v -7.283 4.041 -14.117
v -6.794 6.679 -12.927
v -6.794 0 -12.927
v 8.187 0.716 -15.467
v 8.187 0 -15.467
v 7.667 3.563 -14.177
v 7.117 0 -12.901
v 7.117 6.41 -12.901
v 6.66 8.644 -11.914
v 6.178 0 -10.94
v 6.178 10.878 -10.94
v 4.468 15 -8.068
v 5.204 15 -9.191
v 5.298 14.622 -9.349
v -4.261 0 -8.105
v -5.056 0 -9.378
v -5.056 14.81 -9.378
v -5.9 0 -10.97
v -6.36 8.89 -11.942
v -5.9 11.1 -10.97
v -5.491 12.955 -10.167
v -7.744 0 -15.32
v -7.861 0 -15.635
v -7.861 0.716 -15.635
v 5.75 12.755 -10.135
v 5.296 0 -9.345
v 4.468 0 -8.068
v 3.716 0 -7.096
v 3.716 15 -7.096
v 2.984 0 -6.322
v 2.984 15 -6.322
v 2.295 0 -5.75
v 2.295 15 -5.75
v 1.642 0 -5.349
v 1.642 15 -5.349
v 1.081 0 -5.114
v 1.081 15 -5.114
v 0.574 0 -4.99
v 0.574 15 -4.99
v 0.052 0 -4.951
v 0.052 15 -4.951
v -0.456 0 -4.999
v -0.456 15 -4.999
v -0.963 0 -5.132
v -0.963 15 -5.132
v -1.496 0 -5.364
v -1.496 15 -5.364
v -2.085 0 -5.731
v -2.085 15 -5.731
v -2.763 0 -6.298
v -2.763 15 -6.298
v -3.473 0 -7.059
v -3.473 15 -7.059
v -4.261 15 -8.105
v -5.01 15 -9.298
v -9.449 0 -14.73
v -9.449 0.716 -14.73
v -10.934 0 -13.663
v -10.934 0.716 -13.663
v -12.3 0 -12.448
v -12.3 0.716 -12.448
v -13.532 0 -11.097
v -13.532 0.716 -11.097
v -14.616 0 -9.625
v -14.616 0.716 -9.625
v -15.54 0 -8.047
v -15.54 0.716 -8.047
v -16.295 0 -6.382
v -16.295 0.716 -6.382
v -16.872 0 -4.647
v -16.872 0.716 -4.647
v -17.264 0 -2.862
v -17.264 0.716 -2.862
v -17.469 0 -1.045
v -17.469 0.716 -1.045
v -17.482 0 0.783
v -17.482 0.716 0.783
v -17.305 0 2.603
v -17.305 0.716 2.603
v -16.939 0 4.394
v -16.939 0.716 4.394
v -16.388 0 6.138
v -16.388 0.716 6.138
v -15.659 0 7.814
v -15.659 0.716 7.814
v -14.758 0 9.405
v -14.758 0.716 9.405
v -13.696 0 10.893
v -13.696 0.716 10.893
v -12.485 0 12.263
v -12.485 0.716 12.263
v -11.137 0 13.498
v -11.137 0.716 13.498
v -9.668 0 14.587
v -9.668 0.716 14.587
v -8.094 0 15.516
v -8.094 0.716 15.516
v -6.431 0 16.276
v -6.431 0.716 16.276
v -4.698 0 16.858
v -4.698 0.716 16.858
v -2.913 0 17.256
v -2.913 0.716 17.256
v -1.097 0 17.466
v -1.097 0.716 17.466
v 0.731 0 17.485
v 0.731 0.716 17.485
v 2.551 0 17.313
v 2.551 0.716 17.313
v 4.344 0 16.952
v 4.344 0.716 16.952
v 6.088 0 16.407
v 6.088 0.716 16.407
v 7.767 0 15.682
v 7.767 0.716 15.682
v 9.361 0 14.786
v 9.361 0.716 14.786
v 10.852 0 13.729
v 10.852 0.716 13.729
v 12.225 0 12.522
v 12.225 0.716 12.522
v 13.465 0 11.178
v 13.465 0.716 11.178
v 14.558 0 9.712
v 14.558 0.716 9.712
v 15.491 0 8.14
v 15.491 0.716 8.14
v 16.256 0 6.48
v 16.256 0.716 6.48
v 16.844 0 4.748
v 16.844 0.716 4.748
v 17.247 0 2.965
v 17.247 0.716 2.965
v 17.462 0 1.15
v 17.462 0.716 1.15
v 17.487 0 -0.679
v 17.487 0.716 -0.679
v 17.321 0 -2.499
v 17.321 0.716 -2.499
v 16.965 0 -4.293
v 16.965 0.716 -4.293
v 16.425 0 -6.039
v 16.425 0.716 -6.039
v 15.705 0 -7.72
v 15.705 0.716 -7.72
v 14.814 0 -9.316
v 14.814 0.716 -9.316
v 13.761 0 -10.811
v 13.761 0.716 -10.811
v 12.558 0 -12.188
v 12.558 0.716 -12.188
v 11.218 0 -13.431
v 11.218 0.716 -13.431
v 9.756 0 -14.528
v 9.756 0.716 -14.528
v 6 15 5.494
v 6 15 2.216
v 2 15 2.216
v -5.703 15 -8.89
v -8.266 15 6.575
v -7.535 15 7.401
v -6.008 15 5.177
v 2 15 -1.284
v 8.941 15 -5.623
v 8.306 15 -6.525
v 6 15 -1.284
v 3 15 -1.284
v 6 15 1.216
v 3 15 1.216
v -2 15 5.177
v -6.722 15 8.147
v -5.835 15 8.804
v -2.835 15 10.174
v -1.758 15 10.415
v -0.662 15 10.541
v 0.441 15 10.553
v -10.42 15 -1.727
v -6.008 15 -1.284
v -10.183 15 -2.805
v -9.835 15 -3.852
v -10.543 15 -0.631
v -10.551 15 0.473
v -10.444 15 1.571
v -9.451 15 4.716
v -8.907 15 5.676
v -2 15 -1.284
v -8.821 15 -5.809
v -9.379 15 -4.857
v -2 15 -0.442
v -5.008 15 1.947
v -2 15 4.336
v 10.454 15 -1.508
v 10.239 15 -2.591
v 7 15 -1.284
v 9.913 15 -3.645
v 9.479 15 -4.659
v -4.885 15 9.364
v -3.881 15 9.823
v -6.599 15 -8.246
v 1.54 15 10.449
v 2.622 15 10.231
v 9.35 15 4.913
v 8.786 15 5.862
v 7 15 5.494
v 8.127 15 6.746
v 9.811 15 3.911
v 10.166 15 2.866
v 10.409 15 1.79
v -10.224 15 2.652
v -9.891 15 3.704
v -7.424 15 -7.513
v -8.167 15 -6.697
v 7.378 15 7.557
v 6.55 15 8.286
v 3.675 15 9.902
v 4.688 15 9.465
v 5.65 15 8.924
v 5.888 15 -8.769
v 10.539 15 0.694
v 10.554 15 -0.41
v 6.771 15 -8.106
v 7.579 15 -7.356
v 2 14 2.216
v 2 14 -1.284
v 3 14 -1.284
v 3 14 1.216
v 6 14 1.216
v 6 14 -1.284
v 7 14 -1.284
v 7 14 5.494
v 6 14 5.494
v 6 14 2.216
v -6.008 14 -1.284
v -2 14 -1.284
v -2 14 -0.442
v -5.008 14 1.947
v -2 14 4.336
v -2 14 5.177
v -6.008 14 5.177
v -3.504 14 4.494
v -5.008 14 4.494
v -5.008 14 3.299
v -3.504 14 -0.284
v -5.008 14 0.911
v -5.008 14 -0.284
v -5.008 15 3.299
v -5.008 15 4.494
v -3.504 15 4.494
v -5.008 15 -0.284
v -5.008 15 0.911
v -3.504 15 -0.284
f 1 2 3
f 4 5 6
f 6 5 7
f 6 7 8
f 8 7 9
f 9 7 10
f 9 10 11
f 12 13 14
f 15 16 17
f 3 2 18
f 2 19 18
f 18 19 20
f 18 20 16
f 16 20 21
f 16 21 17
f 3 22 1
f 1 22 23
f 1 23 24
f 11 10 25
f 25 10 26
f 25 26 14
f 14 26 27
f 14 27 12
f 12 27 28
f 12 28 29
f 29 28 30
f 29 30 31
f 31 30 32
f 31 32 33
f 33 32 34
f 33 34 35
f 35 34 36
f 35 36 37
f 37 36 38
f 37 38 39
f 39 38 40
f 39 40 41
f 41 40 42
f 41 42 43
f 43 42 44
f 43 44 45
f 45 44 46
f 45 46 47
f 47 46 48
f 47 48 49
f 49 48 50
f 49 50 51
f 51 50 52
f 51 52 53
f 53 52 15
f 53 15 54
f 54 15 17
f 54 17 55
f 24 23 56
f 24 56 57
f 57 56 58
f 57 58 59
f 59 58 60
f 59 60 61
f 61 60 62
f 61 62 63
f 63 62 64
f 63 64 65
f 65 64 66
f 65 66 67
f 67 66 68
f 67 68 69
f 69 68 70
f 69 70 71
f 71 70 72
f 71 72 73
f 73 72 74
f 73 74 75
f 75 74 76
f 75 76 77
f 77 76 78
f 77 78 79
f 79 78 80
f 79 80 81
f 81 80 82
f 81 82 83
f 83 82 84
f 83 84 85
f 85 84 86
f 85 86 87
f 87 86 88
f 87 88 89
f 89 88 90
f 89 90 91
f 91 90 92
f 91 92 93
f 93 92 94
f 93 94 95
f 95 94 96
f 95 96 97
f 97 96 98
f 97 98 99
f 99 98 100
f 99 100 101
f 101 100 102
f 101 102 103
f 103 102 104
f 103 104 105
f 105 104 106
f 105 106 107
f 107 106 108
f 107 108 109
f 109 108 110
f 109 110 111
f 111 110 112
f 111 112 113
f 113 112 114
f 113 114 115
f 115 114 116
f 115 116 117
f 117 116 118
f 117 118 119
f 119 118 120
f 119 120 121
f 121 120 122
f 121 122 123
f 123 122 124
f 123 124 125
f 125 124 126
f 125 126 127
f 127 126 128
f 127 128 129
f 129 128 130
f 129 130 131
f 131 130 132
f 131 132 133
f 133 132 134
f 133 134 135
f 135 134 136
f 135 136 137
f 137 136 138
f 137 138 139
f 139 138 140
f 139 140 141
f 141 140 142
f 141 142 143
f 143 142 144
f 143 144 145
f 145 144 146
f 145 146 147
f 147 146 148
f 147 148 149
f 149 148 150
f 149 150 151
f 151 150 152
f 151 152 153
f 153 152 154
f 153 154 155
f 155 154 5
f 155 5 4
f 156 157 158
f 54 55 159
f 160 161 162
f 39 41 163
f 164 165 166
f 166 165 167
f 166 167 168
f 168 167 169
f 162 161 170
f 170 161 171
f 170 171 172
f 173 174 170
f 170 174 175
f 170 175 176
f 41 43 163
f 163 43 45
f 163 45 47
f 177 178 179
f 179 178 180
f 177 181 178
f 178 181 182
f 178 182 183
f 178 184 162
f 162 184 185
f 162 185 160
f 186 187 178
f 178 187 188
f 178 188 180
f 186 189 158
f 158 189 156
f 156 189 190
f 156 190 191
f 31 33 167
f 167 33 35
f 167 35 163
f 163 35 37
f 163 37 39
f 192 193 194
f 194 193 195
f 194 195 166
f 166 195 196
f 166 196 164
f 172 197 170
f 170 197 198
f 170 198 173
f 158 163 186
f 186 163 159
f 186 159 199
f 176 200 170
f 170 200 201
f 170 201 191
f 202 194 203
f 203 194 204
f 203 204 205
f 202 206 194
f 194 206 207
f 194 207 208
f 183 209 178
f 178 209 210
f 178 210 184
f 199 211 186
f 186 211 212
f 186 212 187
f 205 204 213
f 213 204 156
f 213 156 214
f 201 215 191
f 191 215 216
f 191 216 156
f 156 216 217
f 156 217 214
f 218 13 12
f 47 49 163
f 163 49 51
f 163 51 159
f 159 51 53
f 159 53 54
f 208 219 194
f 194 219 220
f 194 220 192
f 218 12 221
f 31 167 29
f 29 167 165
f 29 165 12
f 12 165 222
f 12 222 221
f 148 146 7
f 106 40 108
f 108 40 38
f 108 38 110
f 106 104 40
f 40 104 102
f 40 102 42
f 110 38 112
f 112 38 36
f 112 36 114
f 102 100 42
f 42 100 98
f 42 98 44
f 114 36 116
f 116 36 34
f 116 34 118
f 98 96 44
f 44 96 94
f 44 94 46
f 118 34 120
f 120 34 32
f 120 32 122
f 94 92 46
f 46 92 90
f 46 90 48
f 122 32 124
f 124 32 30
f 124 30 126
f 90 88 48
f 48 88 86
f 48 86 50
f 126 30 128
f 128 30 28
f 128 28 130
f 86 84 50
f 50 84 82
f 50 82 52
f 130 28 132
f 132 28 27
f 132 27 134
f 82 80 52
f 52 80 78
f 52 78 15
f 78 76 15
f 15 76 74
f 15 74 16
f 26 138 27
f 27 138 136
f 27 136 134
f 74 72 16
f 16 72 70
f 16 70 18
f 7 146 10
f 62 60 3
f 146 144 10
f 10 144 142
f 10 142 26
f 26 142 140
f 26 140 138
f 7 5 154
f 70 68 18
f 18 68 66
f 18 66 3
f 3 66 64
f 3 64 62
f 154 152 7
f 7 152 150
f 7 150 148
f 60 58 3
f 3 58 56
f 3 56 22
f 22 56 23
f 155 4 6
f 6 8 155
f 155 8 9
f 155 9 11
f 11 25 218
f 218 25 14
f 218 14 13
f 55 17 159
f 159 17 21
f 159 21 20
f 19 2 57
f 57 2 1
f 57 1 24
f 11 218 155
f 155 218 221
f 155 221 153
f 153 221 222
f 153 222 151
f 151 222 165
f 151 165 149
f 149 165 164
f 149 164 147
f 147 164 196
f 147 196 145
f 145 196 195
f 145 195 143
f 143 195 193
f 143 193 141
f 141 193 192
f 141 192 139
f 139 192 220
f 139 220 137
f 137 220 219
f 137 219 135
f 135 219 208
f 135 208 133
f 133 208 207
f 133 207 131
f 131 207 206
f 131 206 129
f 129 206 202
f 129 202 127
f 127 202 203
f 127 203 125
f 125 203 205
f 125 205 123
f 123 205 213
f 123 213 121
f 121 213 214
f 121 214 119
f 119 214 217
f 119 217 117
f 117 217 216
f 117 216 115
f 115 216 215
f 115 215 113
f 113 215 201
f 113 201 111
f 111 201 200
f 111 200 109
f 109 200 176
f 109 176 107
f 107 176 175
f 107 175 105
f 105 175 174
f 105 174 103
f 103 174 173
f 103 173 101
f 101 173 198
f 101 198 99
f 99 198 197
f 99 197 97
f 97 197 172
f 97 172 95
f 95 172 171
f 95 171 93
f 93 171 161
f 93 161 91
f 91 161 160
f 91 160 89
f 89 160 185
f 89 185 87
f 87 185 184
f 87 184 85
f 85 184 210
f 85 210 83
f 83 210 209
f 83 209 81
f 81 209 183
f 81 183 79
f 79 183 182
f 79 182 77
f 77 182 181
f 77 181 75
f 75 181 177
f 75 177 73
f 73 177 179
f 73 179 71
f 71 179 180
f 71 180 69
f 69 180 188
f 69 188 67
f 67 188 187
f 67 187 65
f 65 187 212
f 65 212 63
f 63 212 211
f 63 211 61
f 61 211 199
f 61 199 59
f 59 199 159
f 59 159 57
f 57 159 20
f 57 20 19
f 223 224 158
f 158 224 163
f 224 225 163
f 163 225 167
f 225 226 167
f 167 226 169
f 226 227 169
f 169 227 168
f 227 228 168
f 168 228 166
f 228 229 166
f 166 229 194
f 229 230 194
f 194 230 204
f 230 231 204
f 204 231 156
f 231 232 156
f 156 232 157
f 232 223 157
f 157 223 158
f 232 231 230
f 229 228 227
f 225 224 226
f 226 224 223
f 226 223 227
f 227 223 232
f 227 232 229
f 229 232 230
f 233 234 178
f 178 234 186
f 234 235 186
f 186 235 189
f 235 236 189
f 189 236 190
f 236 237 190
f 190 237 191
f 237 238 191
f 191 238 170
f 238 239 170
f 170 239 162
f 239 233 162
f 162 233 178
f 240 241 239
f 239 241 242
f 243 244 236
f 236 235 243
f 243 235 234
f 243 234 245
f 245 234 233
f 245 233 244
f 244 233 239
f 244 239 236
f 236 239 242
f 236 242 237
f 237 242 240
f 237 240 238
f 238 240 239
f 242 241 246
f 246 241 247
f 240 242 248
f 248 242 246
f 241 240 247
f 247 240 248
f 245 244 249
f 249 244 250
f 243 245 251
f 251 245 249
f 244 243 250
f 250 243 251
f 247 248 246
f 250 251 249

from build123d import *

# Parameters (mm, degrees)
BOSS_EXTRUDE2_DEPTH = 15
CUT_EXTRUDE1_DEPTH  = 1


# Read off the part's stored shape, not the designer's step: Cut-Revolve-Thin2
with BuildPart() as part:
    # Sketch2 → Boss-Extrude2 (new body)
    with BuildSketch(Plane(origin=(0, 0, 0), x_dir=(1, 0, 0), z_dir=(0, 1, 0))):
        with BuildLine():
            ThreePointArc((-7.860899149, 15.635097204), (-0.183301368, -17.499039991), (8.1866917, 15.466999677))
            add(Edge.make_bspline(
                [(-7.860899149, 15.635097204), (-0.059171416, -5.64885573), (8.1866917, 15.466999677)],
                knots=[0, 0, 0, 1, 1, 1], degree=2))
        make_face()
    extrude(amount=BOSS_EXTRUDE2_DEPTH)

    # Cut-Revolve-Thin2 outline → Cut-Revolve-Thin2 (revolve, cut)
    with BuildSketch(Plane.XY):
        Polygon((17.5, 15), (10.561985935, 15), (17.5, 0.715896694), align=None)
    revolve(axis=Axis((0, 0, 0), (0, 1, 0)), mode=Mode.SUBTRACT)

    # Sketch8 → Cut-Extrude1 (cut)
    # profile 1 of 2: a face of its own
    with BuildSketch(Plane(origin=(0, 15, 0), x_dir=(1, 0, 0), z_dir=(0, 1, 0))):
        Polygon((-6.00797666, 1.283695301), (-6.00797666, -5.177491307), (-2, -5.177491307), (-2, -4.335596537), (-5.00797666, -1.946898003), (-2, 0.441800531), (-2, 1.283695301), align=None)
        Polygon((-3.50398833, -4.493701766), (-5.00797666, -4.493701766), (-5.00797666, -3.2993525), align=None, mode=Mode.SUBTRACT)
        Polygon((-5.00797666, 0.283695301), (-3.50398833, 0.283695301), (-5.00797666, -0.910653966), align=None, mode=Mode.SUBTRACT)
    # profile 2 of 2: a face of its own
    with BuildSketch(Plane(origin=(0, 15, 0), x_dir=(1, 0, 0), z_dir=(0, 1, 0))):
        Polygon((2, 1.283695301), (3, 1.283695301), (3, -1.216304699), (6, -1.216304699), (6, 1.283695301), (7, 1.283695301), (7, -5.493701766), (6, -5.493701766), (6, -2.216304699), (2, -2.216304699), align=None)
    extrude(amount=-CUT_EXTRUDE1_DEPTH, mode=Mode.SUBTRACT)


solid = part.part
